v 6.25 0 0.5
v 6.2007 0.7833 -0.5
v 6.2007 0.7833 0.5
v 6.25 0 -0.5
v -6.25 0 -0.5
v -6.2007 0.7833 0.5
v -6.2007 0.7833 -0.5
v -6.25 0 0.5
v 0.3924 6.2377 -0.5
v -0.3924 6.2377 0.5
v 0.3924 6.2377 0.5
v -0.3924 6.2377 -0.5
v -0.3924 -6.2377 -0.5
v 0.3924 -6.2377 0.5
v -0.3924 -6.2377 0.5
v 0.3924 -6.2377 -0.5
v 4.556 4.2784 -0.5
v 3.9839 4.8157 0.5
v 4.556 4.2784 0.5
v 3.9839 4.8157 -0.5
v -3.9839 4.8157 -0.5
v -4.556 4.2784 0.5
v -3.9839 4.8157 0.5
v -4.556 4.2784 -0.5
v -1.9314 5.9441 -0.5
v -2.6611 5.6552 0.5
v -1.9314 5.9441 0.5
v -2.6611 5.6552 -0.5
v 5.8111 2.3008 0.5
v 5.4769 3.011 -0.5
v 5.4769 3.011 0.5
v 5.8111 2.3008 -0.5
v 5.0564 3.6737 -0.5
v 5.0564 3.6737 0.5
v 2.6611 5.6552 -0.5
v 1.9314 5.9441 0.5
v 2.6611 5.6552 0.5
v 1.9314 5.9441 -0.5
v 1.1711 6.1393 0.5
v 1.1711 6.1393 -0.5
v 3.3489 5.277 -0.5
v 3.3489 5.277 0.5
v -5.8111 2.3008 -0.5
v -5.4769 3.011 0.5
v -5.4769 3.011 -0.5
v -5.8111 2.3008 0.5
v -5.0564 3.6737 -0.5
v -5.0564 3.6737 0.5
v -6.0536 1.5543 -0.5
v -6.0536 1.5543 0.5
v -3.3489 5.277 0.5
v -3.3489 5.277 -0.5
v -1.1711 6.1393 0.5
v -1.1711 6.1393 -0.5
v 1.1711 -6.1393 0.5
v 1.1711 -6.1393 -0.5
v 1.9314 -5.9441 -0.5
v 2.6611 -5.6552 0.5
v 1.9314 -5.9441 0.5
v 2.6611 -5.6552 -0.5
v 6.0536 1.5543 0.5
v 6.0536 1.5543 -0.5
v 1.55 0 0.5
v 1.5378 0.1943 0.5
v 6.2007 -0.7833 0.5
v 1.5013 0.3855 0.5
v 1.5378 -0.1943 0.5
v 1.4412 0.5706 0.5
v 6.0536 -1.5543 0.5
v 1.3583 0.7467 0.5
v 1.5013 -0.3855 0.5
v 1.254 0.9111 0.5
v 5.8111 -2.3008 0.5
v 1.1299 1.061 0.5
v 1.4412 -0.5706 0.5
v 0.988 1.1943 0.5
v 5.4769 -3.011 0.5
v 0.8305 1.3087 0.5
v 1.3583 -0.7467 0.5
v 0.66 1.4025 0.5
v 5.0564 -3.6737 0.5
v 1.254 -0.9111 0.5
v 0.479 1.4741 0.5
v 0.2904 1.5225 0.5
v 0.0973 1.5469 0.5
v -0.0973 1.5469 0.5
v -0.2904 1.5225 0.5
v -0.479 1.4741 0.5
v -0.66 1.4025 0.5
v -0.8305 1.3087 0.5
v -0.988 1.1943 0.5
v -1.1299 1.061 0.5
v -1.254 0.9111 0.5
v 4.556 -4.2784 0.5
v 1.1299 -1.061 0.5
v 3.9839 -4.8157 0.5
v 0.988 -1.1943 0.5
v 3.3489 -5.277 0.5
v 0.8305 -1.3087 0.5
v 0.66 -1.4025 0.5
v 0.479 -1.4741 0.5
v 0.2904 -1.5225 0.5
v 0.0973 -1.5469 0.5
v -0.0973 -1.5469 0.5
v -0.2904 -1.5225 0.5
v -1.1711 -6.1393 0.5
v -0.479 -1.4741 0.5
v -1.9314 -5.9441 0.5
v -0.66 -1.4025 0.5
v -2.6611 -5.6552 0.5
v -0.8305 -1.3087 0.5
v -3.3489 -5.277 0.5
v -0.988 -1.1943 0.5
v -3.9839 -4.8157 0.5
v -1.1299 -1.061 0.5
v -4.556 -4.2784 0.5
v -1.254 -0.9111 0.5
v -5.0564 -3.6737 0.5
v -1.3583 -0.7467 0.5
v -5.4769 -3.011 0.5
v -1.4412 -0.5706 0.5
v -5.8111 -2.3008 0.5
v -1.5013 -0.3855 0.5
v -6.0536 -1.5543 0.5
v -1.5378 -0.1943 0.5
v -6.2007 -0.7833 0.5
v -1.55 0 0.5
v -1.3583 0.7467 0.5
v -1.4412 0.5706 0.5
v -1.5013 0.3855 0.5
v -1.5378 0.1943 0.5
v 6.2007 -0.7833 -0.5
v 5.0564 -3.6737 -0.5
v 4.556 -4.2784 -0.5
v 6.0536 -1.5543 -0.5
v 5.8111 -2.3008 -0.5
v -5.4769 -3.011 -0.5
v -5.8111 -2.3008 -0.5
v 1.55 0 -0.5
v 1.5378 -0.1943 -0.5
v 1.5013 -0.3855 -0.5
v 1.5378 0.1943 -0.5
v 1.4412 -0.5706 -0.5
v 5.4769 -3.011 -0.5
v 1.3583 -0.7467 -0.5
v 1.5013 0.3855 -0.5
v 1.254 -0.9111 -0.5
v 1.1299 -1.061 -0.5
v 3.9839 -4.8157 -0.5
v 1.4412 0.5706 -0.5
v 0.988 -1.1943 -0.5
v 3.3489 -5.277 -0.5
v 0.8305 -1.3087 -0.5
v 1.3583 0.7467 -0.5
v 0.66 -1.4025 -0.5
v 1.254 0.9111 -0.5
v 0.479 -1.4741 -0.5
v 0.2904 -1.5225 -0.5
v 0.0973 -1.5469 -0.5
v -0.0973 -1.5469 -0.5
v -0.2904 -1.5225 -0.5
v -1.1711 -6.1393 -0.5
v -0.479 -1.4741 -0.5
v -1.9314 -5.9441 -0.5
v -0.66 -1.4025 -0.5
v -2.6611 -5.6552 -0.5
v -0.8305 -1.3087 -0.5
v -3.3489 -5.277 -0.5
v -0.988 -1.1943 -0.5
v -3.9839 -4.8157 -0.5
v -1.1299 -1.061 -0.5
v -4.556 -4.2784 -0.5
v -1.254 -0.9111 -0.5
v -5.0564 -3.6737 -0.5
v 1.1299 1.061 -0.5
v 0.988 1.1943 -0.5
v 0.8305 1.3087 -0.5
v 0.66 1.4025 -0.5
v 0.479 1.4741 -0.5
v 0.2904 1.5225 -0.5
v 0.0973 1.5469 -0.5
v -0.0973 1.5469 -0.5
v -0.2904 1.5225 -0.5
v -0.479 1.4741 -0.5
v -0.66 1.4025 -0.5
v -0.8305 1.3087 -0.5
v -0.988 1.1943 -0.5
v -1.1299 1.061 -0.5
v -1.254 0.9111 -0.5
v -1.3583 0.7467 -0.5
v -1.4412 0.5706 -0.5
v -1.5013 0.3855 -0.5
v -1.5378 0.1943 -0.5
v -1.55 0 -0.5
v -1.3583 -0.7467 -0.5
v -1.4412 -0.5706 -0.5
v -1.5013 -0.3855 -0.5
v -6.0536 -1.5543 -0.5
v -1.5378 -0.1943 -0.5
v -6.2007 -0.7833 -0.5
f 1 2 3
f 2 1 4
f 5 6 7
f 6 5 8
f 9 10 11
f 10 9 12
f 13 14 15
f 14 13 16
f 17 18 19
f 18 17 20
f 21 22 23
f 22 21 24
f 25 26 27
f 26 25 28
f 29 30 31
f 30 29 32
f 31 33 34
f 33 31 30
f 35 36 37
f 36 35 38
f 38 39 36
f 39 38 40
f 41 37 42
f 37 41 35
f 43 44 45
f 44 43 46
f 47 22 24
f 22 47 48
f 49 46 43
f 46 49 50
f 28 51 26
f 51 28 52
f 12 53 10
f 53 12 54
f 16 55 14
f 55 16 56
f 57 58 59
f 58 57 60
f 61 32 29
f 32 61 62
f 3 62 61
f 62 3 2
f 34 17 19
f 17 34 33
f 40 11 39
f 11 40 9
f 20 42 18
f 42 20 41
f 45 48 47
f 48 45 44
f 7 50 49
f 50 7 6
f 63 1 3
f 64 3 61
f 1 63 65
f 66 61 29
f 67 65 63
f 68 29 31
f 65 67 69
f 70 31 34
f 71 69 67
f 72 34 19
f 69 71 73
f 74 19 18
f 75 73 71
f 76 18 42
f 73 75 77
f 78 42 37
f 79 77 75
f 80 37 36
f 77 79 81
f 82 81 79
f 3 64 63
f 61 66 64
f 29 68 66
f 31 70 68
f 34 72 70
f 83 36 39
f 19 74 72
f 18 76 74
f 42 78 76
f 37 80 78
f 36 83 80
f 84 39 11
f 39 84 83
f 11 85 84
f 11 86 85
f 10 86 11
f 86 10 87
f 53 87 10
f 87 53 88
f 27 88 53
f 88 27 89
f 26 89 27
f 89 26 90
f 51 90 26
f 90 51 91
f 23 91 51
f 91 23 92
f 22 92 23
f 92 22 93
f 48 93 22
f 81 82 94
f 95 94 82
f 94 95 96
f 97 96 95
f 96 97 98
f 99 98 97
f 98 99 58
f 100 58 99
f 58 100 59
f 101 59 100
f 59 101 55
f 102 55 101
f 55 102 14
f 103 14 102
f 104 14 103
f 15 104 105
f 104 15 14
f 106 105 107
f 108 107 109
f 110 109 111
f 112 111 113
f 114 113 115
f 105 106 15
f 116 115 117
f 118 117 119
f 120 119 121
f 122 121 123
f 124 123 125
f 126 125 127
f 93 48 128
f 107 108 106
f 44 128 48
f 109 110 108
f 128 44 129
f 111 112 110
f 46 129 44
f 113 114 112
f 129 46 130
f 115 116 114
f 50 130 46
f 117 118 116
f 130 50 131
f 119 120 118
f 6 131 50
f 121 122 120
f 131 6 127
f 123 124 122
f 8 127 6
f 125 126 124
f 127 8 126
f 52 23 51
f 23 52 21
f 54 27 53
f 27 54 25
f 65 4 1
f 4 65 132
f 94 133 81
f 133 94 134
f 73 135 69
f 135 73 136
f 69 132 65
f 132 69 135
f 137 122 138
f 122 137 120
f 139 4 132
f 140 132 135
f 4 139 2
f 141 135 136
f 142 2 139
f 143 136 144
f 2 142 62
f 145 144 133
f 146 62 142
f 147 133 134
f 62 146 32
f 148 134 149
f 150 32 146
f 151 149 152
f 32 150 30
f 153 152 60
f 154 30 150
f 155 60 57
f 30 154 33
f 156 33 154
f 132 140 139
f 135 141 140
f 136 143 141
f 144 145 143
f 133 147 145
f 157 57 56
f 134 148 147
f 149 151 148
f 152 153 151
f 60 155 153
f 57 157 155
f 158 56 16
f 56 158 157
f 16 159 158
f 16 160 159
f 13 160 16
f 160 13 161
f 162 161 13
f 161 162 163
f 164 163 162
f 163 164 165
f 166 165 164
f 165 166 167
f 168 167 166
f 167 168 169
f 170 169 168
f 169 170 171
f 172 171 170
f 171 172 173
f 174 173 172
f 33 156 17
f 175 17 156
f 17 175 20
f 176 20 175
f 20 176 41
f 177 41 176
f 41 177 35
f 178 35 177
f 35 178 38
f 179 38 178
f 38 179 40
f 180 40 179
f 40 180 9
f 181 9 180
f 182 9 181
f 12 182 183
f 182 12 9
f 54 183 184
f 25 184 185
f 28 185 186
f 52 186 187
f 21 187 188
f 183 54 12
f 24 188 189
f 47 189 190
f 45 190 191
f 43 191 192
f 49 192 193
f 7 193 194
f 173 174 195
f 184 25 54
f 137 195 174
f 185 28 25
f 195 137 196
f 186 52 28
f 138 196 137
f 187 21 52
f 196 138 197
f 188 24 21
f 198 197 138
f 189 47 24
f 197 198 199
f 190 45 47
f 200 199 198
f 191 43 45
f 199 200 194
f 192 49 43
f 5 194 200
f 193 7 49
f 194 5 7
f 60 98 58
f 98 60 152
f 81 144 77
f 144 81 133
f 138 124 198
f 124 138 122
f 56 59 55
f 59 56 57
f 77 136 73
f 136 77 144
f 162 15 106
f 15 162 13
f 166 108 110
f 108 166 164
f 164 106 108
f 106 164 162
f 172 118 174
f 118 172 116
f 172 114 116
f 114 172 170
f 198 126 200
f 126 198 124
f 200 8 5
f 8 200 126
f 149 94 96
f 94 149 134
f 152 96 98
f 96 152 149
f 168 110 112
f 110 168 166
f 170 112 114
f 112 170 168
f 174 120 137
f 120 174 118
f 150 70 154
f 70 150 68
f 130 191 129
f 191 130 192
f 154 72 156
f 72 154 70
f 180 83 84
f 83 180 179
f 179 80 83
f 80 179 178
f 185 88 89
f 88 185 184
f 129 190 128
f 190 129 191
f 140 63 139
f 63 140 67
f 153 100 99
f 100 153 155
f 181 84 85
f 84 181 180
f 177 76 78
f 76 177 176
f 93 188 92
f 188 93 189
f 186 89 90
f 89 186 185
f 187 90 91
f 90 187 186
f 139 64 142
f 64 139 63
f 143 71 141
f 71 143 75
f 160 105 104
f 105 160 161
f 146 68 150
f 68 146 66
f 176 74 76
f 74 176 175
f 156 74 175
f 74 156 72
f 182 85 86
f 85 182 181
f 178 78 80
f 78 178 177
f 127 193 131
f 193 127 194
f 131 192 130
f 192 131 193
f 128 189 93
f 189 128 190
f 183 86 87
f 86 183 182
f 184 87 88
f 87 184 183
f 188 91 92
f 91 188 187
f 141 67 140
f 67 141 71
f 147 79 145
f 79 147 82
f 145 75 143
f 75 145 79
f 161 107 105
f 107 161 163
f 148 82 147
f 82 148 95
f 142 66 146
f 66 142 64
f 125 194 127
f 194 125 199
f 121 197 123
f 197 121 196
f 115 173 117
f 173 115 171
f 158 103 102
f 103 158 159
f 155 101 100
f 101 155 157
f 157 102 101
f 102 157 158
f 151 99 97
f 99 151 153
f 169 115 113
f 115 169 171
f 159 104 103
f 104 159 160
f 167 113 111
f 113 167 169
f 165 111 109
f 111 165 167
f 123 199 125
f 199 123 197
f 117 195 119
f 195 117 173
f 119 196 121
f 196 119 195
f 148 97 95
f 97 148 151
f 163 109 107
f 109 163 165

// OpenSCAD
$fn = 50;


difference() {
	union() {
		translate(v = [0, 0, -0.5000000000]) {
			cylinder(h = 1, r = 6.2500000000);
		}
	}
	union() {
		translate(v = [0, 0, -100.0000000000]) {
			cylinder(h = 200, r = 1.5500000000);
		}
	}
}
